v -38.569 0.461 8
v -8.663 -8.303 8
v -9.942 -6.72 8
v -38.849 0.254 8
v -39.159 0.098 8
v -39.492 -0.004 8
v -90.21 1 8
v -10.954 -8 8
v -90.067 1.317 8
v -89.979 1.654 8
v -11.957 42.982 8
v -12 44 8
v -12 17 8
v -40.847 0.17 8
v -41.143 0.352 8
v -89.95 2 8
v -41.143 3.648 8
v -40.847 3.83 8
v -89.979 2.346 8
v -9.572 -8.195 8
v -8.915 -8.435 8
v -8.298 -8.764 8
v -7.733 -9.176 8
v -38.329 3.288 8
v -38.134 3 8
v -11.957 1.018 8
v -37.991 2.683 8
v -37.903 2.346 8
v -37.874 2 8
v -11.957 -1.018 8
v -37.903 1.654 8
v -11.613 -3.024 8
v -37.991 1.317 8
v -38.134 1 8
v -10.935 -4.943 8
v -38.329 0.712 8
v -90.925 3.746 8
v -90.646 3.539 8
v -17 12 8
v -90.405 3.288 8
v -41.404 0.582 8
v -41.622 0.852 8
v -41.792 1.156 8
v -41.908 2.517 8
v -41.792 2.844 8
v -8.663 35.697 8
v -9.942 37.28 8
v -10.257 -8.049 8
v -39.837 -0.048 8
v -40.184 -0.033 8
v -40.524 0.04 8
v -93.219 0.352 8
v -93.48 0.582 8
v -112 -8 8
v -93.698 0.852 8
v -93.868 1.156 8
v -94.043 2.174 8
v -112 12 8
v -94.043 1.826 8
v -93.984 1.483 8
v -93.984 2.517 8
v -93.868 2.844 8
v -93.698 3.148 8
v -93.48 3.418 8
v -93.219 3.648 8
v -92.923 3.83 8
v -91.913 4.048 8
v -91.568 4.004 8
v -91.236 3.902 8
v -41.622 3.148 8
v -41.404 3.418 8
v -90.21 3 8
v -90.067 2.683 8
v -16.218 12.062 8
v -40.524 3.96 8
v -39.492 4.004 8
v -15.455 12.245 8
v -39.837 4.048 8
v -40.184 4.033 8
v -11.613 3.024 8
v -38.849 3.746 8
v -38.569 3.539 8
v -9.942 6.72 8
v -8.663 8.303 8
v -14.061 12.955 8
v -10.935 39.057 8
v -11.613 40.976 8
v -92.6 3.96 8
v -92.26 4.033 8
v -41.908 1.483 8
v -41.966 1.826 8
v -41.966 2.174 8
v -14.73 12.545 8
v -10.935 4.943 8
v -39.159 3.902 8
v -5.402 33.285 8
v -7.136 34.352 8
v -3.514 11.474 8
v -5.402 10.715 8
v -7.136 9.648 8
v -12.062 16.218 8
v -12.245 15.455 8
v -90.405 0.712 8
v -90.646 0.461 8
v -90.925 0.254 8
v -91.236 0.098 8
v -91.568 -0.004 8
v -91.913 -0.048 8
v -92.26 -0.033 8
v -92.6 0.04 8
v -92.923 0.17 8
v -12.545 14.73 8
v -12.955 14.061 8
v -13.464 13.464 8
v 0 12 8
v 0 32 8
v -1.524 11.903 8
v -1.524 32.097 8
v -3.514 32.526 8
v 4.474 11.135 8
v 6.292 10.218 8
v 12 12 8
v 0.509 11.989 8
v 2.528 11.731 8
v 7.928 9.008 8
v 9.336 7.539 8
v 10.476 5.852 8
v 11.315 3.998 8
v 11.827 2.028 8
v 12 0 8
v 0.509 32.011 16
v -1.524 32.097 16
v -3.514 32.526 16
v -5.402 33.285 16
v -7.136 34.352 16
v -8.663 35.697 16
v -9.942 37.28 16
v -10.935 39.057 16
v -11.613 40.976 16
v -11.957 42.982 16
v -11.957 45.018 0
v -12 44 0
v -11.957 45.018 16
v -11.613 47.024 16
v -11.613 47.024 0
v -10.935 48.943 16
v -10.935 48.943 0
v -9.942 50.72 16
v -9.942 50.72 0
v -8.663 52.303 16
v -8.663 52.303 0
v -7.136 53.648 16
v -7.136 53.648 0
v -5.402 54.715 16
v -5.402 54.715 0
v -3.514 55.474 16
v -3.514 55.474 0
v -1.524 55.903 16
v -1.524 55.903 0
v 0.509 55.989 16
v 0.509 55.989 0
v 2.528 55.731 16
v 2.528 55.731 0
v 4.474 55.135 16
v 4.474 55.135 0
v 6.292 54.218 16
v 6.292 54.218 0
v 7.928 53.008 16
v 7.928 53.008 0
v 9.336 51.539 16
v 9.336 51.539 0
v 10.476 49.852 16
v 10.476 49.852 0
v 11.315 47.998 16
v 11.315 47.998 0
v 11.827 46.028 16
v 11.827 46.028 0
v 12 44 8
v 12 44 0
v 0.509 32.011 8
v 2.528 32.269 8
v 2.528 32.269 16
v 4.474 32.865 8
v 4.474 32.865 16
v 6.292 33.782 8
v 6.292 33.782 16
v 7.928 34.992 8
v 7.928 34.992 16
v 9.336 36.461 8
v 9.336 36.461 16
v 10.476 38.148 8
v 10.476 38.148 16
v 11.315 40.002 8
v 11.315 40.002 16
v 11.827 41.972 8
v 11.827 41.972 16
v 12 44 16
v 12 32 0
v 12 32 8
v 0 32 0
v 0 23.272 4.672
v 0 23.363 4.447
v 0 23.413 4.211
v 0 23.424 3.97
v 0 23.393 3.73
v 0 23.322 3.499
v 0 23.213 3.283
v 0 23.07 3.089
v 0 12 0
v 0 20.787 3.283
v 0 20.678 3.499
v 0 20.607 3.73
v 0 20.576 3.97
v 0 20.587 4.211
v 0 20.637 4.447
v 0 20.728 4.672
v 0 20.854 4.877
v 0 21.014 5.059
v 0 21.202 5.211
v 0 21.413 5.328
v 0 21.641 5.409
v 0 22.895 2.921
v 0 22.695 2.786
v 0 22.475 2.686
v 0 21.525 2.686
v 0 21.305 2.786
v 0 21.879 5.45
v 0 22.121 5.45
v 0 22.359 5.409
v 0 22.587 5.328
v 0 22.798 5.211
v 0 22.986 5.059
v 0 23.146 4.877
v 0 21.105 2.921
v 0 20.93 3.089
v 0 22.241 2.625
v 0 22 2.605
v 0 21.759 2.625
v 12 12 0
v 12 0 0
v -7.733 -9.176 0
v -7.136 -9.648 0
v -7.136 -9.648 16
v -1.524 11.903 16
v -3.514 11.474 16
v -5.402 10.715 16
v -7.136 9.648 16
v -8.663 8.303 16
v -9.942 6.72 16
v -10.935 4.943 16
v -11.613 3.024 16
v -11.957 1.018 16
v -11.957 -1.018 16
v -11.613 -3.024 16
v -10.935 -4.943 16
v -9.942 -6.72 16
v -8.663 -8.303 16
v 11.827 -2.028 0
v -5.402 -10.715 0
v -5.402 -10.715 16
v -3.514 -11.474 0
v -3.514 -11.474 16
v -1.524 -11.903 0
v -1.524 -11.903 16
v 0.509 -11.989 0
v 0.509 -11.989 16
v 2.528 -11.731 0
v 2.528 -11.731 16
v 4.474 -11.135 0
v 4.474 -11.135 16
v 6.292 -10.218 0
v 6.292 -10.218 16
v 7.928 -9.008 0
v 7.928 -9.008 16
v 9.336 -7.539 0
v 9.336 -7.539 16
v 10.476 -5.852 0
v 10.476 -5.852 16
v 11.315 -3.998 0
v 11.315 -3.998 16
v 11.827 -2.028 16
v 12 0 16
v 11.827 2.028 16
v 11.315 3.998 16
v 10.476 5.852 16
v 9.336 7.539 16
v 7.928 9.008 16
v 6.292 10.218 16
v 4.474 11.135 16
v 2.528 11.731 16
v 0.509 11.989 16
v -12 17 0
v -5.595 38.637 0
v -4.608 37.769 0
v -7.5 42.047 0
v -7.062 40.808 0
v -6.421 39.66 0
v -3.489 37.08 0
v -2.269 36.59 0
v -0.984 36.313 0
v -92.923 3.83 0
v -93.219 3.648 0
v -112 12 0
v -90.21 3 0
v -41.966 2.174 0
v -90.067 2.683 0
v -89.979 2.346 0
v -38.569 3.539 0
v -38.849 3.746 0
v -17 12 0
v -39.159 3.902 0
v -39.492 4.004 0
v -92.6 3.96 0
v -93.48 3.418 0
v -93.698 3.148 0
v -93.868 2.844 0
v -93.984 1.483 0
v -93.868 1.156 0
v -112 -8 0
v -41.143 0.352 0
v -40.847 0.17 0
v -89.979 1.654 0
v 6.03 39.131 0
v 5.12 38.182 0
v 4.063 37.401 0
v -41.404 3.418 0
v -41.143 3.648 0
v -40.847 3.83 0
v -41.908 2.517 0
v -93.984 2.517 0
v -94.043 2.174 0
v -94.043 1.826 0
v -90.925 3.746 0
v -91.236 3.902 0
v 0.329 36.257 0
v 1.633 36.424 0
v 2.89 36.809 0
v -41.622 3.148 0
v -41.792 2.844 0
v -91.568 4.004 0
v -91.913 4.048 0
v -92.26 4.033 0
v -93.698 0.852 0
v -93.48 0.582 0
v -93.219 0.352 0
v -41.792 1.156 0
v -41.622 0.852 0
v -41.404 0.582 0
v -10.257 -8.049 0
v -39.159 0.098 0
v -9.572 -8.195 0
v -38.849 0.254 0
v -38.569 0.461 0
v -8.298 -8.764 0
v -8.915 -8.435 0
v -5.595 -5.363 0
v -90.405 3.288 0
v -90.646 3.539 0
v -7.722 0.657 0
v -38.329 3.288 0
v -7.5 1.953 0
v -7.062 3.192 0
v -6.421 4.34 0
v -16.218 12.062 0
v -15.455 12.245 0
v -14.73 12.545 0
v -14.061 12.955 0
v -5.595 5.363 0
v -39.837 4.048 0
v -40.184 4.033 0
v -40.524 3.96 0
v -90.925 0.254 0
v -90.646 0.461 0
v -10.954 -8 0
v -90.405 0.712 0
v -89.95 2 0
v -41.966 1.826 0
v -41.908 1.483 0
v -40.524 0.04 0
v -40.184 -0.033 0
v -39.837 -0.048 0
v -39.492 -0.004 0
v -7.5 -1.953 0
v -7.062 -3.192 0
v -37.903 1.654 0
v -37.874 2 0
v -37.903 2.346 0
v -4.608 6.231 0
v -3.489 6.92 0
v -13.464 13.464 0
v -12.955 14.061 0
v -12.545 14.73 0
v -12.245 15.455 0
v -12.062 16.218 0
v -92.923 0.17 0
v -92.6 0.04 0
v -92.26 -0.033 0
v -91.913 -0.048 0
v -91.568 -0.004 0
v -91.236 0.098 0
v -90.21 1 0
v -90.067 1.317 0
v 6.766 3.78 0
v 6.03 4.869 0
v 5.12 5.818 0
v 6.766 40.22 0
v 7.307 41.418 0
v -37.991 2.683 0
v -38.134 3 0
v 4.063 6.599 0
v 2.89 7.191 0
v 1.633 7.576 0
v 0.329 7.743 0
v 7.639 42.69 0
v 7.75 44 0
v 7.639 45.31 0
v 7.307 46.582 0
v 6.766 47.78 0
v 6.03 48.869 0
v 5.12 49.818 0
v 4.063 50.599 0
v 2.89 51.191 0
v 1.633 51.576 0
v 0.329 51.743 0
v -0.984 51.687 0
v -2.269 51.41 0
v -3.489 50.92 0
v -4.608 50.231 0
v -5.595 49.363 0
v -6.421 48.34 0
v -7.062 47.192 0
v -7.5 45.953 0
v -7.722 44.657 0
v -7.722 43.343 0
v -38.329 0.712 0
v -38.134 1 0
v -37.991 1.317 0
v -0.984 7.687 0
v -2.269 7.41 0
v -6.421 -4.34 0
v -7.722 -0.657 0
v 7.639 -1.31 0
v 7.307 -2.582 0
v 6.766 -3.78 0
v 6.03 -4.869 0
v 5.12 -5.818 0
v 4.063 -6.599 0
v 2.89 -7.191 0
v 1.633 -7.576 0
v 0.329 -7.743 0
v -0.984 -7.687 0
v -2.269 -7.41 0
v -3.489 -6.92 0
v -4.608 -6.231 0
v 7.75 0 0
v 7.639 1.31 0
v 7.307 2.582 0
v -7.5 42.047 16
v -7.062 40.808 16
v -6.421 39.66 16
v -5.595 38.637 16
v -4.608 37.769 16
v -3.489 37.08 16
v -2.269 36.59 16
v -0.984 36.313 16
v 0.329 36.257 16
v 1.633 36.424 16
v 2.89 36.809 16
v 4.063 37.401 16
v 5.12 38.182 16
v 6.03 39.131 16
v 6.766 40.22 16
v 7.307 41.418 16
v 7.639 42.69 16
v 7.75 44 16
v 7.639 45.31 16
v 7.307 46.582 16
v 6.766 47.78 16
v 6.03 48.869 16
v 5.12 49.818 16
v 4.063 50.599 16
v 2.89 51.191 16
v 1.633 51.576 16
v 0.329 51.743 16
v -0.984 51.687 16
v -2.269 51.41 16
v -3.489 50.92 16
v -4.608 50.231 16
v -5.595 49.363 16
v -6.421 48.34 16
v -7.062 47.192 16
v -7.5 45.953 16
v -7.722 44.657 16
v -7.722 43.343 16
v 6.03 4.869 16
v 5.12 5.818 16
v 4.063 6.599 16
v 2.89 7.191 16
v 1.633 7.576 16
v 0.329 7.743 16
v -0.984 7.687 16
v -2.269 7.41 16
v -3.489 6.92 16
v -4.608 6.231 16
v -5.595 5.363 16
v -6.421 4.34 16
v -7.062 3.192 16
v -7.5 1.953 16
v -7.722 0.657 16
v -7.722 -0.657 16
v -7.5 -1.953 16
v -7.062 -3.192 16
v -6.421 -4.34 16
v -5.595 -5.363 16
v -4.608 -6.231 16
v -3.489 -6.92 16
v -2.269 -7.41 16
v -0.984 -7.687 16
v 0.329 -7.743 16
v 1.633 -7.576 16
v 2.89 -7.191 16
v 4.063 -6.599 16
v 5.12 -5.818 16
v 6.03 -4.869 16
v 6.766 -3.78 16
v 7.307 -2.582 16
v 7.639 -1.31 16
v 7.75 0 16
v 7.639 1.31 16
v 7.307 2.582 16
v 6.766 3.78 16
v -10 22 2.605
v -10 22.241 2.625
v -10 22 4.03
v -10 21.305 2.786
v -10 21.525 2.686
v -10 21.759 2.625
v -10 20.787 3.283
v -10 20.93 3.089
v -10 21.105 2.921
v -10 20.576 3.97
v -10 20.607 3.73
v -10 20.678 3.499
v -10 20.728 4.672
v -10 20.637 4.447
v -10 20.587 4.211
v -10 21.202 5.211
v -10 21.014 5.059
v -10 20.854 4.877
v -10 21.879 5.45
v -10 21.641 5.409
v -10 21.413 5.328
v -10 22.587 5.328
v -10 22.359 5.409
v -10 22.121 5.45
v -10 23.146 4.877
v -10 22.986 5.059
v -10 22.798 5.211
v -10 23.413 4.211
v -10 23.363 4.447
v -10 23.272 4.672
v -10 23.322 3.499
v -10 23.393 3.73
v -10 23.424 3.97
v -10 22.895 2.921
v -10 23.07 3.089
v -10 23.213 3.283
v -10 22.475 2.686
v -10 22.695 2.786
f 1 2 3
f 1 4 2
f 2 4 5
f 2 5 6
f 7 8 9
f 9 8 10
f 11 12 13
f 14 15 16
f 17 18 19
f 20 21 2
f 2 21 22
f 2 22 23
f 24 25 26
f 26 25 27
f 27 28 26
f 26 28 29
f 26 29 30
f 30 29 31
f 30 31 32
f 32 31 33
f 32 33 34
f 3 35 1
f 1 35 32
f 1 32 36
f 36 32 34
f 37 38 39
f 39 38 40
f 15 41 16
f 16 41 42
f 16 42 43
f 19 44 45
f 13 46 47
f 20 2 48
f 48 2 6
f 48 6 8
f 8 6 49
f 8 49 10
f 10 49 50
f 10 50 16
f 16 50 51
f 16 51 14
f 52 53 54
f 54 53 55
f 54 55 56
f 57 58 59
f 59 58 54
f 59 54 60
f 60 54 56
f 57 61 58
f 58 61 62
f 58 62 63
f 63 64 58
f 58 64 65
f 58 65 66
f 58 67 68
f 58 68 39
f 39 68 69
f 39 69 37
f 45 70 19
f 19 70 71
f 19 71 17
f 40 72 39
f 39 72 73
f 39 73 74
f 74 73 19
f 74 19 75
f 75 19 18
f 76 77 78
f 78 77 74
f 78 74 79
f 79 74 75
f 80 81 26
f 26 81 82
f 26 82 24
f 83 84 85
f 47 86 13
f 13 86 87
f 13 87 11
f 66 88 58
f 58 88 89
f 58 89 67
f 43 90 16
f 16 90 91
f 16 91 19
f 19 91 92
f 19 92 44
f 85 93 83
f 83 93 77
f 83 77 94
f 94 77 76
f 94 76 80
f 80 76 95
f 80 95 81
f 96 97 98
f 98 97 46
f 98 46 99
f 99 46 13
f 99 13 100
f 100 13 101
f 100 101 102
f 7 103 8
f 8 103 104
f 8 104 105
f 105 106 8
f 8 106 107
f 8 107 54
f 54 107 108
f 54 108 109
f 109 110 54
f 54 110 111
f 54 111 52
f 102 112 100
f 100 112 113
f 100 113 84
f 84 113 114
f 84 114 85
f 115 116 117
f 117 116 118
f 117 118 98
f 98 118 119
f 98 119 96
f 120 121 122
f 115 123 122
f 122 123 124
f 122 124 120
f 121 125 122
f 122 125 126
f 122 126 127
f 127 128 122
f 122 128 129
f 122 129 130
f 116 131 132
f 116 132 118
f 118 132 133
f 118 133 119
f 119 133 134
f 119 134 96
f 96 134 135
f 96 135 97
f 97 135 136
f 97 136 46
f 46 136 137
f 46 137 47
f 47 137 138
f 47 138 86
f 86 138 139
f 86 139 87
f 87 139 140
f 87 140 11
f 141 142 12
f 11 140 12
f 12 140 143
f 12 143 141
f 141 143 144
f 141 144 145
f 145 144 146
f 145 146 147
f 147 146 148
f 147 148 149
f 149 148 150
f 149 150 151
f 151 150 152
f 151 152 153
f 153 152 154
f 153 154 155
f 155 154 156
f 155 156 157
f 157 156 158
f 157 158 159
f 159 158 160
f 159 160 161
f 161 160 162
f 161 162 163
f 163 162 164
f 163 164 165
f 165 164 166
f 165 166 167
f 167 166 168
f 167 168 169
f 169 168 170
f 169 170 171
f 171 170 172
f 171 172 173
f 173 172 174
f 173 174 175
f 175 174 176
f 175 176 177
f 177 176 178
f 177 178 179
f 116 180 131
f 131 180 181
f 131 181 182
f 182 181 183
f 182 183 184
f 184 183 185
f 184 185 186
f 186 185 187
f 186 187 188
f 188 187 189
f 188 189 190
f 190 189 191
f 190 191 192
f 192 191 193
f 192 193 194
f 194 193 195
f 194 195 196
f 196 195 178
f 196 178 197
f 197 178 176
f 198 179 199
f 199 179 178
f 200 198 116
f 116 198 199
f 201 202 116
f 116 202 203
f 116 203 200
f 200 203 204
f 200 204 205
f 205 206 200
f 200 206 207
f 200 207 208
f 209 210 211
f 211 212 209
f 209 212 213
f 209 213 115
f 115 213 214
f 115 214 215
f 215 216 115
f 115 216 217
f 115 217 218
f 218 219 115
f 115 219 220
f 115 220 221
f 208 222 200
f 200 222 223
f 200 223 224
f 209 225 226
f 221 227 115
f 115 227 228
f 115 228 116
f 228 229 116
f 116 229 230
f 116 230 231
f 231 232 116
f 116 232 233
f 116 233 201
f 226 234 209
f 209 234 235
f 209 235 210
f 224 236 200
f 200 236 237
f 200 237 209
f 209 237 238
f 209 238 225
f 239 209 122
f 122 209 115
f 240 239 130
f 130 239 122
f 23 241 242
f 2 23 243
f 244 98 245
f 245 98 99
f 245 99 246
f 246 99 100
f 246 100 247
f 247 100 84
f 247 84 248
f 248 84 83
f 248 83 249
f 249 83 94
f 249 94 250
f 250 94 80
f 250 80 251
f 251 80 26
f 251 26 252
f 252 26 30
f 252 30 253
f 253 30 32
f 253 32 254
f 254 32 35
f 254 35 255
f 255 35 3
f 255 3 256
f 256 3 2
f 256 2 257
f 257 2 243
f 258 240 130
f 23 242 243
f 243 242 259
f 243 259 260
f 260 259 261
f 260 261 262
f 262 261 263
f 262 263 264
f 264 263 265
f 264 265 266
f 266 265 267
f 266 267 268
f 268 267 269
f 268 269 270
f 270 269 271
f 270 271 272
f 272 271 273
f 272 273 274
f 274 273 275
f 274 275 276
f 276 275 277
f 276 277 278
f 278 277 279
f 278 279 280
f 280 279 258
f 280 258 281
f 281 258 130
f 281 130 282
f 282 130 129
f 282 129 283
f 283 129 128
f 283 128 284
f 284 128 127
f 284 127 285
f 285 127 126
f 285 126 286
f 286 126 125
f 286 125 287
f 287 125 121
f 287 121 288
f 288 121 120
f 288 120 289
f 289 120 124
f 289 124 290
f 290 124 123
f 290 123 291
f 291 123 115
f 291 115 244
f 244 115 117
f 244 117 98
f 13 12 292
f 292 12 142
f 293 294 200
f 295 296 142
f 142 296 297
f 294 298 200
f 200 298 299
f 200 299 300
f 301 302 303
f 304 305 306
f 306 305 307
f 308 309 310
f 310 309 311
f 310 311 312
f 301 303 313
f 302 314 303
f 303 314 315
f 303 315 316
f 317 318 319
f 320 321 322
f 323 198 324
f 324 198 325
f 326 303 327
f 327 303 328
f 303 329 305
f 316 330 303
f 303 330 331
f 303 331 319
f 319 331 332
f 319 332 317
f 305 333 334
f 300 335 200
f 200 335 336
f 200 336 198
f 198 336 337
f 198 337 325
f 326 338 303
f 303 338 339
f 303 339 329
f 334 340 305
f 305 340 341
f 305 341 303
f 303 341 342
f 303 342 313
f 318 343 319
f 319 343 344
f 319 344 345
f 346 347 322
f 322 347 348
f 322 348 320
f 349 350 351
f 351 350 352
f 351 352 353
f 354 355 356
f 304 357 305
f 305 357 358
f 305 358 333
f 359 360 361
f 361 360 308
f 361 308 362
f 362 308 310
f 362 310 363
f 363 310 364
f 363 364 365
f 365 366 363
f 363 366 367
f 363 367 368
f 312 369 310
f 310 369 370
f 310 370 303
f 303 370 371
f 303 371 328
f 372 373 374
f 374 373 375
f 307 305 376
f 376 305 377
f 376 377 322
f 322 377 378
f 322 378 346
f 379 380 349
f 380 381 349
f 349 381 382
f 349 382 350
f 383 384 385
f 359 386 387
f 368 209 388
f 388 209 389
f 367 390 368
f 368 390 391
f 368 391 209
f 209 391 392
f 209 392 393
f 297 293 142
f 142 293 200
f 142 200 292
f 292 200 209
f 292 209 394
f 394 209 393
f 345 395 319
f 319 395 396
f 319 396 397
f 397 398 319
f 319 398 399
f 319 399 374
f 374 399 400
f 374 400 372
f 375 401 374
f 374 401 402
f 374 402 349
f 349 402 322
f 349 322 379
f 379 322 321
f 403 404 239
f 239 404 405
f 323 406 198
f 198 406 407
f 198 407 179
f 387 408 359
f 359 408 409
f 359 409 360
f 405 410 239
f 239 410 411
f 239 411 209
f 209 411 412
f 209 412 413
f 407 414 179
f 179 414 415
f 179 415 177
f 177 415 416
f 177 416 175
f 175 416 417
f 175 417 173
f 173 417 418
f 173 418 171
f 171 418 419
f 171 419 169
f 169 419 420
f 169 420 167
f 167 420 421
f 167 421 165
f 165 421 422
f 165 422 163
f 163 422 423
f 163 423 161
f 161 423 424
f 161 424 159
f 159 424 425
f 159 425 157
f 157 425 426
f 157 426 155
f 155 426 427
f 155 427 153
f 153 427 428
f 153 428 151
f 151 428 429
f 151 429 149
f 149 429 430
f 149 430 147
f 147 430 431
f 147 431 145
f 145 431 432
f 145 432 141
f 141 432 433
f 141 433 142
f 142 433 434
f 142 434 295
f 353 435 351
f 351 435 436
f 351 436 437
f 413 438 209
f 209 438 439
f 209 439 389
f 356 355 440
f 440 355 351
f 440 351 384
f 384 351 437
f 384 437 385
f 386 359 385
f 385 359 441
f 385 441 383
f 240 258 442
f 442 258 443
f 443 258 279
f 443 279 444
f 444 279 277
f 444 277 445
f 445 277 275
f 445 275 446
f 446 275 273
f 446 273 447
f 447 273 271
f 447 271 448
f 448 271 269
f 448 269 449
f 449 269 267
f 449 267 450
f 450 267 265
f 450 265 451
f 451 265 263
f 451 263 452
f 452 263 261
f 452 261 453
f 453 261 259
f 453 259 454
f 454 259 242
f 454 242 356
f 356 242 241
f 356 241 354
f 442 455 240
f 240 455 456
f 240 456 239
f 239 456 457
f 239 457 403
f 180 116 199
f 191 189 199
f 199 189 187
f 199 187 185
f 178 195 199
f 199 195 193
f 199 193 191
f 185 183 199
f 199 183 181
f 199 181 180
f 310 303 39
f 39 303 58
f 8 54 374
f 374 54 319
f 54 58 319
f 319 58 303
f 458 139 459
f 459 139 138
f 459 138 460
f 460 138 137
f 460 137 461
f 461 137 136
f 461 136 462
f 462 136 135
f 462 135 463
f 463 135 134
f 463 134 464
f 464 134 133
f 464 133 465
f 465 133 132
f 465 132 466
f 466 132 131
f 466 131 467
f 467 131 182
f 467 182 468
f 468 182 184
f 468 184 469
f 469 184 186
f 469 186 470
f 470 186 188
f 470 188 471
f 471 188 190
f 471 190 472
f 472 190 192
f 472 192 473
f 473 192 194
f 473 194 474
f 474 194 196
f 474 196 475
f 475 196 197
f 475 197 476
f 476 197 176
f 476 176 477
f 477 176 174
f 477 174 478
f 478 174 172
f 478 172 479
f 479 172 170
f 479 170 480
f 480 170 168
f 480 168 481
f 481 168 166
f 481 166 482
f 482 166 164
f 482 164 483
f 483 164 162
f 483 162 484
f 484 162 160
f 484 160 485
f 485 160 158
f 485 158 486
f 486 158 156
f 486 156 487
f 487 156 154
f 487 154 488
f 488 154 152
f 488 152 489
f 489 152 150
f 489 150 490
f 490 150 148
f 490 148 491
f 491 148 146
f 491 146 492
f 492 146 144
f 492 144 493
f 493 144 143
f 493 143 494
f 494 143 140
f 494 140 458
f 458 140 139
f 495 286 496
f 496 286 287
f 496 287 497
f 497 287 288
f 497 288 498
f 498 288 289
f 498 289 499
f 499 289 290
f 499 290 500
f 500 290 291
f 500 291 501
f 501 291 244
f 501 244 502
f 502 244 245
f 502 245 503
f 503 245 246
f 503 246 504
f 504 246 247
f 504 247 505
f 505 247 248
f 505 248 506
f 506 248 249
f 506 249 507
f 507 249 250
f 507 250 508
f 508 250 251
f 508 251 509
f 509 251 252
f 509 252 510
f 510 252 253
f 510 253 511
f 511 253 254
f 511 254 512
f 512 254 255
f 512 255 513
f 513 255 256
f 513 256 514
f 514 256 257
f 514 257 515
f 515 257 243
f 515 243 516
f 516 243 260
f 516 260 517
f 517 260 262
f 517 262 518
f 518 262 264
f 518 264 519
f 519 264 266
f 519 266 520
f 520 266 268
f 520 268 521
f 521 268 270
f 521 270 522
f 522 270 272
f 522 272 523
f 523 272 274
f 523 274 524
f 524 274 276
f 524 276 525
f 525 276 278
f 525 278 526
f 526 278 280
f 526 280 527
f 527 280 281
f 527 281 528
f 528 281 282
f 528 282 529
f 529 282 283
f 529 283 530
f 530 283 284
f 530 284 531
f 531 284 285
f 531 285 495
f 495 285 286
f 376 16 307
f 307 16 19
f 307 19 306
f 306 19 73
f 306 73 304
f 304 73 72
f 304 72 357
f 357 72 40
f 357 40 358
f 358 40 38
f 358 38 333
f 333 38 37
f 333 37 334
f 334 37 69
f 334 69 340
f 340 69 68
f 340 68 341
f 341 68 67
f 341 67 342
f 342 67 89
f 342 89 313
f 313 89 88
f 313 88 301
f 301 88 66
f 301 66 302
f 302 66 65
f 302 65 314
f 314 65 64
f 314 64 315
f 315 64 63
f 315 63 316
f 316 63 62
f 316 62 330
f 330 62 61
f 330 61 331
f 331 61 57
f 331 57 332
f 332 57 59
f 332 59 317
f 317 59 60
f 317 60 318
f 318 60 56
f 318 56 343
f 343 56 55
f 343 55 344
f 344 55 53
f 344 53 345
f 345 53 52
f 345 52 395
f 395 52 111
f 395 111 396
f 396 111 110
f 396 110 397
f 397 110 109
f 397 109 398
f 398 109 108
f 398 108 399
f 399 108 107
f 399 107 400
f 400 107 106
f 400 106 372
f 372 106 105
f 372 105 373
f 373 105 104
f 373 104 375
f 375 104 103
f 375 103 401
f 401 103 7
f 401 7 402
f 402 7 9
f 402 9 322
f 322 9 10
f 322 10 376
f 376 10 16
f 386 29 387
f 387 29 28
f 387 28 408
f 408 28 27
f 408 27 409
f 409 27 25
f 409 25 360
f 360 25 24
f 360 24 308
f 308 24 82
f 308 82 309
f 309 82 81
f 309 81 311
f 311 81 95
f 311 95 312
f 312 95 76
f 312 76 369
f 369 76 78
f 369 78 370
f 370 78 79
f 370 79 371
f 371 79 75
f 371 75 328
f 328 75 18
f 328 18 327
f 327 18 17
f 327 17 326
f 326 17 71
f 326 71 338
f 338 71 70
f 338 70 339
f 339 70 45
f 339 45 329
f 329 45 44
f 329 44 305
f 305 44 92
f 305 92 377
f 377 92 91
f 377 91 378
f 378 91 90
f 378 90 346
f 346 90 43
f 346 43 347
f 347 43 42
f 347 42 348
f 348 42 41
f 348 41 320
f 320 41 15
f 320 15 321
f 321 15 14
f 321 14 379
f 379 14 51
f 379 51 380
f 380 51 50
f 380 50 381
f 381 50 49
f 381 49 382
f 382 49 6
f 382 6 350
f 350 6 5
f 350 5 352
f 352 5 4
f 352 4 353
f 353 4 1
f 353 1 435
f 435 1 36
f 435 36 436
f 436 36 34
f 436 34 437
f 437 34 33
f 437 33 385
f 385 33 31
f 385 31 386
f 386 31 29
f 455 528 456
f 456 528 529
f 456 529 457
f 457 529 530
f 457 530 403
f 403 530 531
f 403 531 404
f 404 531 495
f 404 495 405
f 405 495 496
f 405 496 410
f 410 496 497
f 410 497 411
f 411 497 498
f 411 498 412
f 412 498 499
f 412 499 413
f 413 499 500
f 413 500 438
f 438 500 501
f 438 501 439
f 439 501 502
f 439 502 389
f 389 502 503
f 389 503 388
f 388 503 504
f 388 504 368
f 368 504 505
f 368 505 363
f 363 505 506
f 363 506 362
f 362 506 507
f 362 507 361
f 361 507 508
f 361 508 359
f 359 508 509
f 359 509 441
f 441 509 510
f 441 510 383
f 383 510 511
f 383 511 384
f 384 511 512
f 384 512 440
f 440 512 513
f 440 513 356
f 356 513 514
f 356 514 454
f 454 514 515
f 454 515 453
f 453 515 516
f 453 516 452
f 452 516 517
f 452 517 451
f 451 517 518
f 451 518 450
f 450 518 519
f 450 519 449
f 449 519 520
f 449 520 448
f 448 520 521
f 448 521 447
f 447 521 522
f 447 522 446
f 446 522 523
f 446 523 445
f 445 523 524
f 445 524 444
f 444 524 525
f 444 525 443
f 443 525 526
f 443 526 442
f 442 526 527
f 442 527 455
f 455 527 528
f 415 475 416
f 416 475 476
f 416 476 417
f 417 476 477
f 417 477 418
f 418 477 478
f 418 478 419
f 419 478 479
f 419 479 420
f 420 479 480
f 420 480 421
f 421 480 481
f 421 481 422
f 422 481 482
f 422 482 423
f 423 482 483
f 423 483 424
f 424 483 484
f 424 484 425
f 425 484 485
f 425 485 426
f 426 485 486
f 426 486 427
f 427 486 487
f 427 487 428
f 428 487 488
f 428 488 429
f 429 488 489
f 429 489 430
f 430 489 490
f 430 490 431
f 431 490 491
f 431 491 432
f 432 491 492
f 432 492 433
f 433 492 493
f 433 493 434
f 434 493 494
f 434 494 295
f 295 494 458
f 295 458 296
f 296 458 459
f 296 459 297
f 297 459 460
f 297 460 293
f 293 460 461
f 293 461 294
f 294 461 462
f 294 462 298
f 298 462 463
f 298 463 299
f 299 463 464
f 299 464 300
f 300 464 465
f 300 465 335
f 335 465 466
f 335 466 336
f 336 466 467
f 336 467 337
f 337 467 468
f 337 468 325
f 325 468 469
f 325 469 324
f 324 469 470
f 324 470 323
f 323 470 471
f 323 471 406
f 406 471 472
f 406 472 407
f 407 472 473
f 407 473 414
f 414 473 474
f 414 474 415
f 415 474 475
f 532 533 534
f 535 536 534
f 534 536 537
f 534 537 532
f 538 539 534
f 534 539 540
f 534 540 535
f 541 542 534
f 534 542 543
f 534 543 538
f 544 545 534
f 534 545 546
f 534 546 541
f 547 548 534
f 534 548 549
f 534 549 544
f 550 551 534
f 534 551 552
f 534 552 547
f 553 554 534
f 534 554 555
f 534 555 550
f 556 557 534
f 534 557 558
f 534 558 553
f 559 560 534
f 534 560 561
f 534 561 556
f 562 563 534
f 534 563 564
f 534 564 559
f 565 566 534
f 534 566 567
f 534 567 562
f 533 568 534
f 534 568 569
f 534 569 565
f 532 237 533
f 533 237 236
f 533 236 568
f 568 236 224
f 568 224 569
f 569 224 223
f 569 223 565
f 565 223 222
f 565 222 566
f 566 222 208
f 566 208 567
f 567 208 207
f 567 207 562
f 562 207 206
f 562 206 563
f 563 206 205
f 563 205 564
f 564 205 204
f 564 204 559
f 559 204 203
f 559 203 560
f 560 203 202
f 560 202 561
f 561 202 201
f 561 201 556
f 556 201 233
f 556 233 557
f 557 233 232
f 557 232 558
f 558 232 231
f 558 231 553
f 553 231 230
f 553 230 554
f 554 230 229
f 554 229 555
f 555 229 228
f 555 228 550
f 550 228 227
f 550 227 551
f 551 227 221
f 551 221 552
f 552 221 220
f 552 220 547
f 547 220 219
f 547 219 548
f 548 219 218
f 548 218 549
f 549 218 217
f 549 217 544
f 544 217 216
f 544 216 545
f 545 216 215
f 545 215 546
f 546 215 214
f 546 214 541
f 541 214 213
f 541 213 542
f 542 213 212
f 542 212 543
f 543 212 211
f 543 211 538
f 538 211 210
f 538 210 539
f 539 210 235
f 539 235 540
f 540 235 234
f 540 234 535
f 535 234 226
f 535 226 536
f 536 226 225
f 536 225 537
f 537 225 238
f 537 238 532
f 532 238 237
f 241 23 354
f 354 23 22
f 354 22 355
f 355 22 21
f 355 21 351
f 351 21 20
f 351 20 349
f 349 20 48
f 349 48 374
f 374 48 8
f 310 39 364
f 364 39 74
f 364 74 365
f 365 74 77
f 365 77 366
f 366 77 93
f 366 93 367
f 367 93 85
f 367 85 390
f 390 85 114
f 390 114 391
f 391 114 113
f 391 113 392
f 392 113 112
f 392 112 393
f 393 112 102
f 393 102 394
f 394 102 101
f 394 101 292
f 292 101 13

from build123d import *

# Parameters (mm, degrees)
BOSS_EXTRU_1_DEPTH                    = 8
ESQUISSE2_W                           = 8
ESQUISSE2_H                           = 20
BOSS_EXTRU_2_DEPTH                    = 100
BOSS_EXTRU_2_DEPTH_BACK               = 5
ESQUISSE3_R                           = 12
BOSS_EXTRU_3_DEPTH                    = 8
ESQUISSE4_R                           = 12
BOSS_EXTRU_4_DEPTH                    = 8
DIAM_TRE_DU_PER_AGE_4_1_4_1_1_D       = 4.1
DIAM_TRE_DU_PER_AGE_15_5_15_5_1_D     = 15.5
DIAM_TRE_DU_PER_AGE_15_5_15_5_1_DEPTH = 16
D_GAGEMENT_M2_51_D                    = 2.85
D_GAGEMENT_M2_51_DEPTH                = 10
CONG_1_R                              = 5


with BuildPart() as part:
    # Esquisse1 → Boss.-Extru.1 (new body)
    with BuildSketch(Plane.XY.offset(8)):
        with BuildLine():
            Line((-12, 44.000000179), (-12, 0))
            ThreePointArc((-12, 0), (0, -12), (12, 0))
            Line((12, 0), (12, 12))
            Line((12, 12), (0, 12))
            Line((0, 12), (0, 32))
            Line((0, 32), (12, 32))
            Line((12, 32), (12, 44.000000179))
            ThreePointArc((12, 44.000000179), (0, 56.000000179), (-12, 44.000000179))
        make_face()
    extrude(amount=-BOSS_EXTRU_1_DEPTH)

    # Esquisse2 → Boss.-Extru.2 (add, two sides)
    with BuildSketch(Plane.ZY.offset(12)) as boss_extru_2_sk:
        with Locations((4, 2)):
            Rectangle(ESQUISSE2_W, ESQUISSE2_H)
    extrude(amount=BOSS_EXTRU_2_DEPTH)
    extrude(boss_extru_2_sk.sketch, amount=-BOSS_EXTRU_2_DEPTH_BACK)

    # Esquisse3 → Boss.-Extru.3 (add)
    with BuildSketch(Plane.XY.offset(8)):
        with Locations((0, 44)):
            Circle(ESQUISSE3_R)
    extrude(amount=BOSS_EXTRU_3_DEPTH)

    # Esquisse4 → Boss.-Extru.4 (add)
    with BuildSketch(Plane.XY.offset(8)):
        Circle(ESQUISSE4_R)
    extrude(amount=BOSS_EXTRU_4_DEPTH)

    # Diamètre du perçage Ø4.1 (4.1)1 (through all)
    with Locations(Plane.XY.offset(8)):
        with Locations((-39.923806844, 2), (-92, 2)):
            Hole(DIAM_TRE_DU_PER_AGE_4_1_4_1_1_D / 2)

    # Diamètre du perçage Ø15.5 (15.5)1
    with Locations(Plane.XY.offset(16)):
        with Locations((0, 44), (0, 0)):
            Hole(DIAM_TRE_DU_PER_AGE_15_5_15_5_1_D / 2, depth=DIAM_TRE_DU_PER_AGE_15_5_15_5_1_DEPTH)

    # Dégagement M2.51
    with Locations(Plane(origin=(0, 0, 0), x_dir=(0, 0, -1), z_dir=(1, 0, 0))):
        with Locations((-4.029990313, 22)):
            Hole(D_GAGEMENT_M2_51_D / 2, depth=D_GAGEMENT_M2_51_DEPTH)

    # Congé1
    cong_1_edges = [part.edges().sort_by_distance(p)[0] for p in [
        (-12, 12, 4),
        (-8.94427191, -8, 4),
    ]]
    fillet(cong_1_edges, radius=CONG_1_R)


solid = part.part
